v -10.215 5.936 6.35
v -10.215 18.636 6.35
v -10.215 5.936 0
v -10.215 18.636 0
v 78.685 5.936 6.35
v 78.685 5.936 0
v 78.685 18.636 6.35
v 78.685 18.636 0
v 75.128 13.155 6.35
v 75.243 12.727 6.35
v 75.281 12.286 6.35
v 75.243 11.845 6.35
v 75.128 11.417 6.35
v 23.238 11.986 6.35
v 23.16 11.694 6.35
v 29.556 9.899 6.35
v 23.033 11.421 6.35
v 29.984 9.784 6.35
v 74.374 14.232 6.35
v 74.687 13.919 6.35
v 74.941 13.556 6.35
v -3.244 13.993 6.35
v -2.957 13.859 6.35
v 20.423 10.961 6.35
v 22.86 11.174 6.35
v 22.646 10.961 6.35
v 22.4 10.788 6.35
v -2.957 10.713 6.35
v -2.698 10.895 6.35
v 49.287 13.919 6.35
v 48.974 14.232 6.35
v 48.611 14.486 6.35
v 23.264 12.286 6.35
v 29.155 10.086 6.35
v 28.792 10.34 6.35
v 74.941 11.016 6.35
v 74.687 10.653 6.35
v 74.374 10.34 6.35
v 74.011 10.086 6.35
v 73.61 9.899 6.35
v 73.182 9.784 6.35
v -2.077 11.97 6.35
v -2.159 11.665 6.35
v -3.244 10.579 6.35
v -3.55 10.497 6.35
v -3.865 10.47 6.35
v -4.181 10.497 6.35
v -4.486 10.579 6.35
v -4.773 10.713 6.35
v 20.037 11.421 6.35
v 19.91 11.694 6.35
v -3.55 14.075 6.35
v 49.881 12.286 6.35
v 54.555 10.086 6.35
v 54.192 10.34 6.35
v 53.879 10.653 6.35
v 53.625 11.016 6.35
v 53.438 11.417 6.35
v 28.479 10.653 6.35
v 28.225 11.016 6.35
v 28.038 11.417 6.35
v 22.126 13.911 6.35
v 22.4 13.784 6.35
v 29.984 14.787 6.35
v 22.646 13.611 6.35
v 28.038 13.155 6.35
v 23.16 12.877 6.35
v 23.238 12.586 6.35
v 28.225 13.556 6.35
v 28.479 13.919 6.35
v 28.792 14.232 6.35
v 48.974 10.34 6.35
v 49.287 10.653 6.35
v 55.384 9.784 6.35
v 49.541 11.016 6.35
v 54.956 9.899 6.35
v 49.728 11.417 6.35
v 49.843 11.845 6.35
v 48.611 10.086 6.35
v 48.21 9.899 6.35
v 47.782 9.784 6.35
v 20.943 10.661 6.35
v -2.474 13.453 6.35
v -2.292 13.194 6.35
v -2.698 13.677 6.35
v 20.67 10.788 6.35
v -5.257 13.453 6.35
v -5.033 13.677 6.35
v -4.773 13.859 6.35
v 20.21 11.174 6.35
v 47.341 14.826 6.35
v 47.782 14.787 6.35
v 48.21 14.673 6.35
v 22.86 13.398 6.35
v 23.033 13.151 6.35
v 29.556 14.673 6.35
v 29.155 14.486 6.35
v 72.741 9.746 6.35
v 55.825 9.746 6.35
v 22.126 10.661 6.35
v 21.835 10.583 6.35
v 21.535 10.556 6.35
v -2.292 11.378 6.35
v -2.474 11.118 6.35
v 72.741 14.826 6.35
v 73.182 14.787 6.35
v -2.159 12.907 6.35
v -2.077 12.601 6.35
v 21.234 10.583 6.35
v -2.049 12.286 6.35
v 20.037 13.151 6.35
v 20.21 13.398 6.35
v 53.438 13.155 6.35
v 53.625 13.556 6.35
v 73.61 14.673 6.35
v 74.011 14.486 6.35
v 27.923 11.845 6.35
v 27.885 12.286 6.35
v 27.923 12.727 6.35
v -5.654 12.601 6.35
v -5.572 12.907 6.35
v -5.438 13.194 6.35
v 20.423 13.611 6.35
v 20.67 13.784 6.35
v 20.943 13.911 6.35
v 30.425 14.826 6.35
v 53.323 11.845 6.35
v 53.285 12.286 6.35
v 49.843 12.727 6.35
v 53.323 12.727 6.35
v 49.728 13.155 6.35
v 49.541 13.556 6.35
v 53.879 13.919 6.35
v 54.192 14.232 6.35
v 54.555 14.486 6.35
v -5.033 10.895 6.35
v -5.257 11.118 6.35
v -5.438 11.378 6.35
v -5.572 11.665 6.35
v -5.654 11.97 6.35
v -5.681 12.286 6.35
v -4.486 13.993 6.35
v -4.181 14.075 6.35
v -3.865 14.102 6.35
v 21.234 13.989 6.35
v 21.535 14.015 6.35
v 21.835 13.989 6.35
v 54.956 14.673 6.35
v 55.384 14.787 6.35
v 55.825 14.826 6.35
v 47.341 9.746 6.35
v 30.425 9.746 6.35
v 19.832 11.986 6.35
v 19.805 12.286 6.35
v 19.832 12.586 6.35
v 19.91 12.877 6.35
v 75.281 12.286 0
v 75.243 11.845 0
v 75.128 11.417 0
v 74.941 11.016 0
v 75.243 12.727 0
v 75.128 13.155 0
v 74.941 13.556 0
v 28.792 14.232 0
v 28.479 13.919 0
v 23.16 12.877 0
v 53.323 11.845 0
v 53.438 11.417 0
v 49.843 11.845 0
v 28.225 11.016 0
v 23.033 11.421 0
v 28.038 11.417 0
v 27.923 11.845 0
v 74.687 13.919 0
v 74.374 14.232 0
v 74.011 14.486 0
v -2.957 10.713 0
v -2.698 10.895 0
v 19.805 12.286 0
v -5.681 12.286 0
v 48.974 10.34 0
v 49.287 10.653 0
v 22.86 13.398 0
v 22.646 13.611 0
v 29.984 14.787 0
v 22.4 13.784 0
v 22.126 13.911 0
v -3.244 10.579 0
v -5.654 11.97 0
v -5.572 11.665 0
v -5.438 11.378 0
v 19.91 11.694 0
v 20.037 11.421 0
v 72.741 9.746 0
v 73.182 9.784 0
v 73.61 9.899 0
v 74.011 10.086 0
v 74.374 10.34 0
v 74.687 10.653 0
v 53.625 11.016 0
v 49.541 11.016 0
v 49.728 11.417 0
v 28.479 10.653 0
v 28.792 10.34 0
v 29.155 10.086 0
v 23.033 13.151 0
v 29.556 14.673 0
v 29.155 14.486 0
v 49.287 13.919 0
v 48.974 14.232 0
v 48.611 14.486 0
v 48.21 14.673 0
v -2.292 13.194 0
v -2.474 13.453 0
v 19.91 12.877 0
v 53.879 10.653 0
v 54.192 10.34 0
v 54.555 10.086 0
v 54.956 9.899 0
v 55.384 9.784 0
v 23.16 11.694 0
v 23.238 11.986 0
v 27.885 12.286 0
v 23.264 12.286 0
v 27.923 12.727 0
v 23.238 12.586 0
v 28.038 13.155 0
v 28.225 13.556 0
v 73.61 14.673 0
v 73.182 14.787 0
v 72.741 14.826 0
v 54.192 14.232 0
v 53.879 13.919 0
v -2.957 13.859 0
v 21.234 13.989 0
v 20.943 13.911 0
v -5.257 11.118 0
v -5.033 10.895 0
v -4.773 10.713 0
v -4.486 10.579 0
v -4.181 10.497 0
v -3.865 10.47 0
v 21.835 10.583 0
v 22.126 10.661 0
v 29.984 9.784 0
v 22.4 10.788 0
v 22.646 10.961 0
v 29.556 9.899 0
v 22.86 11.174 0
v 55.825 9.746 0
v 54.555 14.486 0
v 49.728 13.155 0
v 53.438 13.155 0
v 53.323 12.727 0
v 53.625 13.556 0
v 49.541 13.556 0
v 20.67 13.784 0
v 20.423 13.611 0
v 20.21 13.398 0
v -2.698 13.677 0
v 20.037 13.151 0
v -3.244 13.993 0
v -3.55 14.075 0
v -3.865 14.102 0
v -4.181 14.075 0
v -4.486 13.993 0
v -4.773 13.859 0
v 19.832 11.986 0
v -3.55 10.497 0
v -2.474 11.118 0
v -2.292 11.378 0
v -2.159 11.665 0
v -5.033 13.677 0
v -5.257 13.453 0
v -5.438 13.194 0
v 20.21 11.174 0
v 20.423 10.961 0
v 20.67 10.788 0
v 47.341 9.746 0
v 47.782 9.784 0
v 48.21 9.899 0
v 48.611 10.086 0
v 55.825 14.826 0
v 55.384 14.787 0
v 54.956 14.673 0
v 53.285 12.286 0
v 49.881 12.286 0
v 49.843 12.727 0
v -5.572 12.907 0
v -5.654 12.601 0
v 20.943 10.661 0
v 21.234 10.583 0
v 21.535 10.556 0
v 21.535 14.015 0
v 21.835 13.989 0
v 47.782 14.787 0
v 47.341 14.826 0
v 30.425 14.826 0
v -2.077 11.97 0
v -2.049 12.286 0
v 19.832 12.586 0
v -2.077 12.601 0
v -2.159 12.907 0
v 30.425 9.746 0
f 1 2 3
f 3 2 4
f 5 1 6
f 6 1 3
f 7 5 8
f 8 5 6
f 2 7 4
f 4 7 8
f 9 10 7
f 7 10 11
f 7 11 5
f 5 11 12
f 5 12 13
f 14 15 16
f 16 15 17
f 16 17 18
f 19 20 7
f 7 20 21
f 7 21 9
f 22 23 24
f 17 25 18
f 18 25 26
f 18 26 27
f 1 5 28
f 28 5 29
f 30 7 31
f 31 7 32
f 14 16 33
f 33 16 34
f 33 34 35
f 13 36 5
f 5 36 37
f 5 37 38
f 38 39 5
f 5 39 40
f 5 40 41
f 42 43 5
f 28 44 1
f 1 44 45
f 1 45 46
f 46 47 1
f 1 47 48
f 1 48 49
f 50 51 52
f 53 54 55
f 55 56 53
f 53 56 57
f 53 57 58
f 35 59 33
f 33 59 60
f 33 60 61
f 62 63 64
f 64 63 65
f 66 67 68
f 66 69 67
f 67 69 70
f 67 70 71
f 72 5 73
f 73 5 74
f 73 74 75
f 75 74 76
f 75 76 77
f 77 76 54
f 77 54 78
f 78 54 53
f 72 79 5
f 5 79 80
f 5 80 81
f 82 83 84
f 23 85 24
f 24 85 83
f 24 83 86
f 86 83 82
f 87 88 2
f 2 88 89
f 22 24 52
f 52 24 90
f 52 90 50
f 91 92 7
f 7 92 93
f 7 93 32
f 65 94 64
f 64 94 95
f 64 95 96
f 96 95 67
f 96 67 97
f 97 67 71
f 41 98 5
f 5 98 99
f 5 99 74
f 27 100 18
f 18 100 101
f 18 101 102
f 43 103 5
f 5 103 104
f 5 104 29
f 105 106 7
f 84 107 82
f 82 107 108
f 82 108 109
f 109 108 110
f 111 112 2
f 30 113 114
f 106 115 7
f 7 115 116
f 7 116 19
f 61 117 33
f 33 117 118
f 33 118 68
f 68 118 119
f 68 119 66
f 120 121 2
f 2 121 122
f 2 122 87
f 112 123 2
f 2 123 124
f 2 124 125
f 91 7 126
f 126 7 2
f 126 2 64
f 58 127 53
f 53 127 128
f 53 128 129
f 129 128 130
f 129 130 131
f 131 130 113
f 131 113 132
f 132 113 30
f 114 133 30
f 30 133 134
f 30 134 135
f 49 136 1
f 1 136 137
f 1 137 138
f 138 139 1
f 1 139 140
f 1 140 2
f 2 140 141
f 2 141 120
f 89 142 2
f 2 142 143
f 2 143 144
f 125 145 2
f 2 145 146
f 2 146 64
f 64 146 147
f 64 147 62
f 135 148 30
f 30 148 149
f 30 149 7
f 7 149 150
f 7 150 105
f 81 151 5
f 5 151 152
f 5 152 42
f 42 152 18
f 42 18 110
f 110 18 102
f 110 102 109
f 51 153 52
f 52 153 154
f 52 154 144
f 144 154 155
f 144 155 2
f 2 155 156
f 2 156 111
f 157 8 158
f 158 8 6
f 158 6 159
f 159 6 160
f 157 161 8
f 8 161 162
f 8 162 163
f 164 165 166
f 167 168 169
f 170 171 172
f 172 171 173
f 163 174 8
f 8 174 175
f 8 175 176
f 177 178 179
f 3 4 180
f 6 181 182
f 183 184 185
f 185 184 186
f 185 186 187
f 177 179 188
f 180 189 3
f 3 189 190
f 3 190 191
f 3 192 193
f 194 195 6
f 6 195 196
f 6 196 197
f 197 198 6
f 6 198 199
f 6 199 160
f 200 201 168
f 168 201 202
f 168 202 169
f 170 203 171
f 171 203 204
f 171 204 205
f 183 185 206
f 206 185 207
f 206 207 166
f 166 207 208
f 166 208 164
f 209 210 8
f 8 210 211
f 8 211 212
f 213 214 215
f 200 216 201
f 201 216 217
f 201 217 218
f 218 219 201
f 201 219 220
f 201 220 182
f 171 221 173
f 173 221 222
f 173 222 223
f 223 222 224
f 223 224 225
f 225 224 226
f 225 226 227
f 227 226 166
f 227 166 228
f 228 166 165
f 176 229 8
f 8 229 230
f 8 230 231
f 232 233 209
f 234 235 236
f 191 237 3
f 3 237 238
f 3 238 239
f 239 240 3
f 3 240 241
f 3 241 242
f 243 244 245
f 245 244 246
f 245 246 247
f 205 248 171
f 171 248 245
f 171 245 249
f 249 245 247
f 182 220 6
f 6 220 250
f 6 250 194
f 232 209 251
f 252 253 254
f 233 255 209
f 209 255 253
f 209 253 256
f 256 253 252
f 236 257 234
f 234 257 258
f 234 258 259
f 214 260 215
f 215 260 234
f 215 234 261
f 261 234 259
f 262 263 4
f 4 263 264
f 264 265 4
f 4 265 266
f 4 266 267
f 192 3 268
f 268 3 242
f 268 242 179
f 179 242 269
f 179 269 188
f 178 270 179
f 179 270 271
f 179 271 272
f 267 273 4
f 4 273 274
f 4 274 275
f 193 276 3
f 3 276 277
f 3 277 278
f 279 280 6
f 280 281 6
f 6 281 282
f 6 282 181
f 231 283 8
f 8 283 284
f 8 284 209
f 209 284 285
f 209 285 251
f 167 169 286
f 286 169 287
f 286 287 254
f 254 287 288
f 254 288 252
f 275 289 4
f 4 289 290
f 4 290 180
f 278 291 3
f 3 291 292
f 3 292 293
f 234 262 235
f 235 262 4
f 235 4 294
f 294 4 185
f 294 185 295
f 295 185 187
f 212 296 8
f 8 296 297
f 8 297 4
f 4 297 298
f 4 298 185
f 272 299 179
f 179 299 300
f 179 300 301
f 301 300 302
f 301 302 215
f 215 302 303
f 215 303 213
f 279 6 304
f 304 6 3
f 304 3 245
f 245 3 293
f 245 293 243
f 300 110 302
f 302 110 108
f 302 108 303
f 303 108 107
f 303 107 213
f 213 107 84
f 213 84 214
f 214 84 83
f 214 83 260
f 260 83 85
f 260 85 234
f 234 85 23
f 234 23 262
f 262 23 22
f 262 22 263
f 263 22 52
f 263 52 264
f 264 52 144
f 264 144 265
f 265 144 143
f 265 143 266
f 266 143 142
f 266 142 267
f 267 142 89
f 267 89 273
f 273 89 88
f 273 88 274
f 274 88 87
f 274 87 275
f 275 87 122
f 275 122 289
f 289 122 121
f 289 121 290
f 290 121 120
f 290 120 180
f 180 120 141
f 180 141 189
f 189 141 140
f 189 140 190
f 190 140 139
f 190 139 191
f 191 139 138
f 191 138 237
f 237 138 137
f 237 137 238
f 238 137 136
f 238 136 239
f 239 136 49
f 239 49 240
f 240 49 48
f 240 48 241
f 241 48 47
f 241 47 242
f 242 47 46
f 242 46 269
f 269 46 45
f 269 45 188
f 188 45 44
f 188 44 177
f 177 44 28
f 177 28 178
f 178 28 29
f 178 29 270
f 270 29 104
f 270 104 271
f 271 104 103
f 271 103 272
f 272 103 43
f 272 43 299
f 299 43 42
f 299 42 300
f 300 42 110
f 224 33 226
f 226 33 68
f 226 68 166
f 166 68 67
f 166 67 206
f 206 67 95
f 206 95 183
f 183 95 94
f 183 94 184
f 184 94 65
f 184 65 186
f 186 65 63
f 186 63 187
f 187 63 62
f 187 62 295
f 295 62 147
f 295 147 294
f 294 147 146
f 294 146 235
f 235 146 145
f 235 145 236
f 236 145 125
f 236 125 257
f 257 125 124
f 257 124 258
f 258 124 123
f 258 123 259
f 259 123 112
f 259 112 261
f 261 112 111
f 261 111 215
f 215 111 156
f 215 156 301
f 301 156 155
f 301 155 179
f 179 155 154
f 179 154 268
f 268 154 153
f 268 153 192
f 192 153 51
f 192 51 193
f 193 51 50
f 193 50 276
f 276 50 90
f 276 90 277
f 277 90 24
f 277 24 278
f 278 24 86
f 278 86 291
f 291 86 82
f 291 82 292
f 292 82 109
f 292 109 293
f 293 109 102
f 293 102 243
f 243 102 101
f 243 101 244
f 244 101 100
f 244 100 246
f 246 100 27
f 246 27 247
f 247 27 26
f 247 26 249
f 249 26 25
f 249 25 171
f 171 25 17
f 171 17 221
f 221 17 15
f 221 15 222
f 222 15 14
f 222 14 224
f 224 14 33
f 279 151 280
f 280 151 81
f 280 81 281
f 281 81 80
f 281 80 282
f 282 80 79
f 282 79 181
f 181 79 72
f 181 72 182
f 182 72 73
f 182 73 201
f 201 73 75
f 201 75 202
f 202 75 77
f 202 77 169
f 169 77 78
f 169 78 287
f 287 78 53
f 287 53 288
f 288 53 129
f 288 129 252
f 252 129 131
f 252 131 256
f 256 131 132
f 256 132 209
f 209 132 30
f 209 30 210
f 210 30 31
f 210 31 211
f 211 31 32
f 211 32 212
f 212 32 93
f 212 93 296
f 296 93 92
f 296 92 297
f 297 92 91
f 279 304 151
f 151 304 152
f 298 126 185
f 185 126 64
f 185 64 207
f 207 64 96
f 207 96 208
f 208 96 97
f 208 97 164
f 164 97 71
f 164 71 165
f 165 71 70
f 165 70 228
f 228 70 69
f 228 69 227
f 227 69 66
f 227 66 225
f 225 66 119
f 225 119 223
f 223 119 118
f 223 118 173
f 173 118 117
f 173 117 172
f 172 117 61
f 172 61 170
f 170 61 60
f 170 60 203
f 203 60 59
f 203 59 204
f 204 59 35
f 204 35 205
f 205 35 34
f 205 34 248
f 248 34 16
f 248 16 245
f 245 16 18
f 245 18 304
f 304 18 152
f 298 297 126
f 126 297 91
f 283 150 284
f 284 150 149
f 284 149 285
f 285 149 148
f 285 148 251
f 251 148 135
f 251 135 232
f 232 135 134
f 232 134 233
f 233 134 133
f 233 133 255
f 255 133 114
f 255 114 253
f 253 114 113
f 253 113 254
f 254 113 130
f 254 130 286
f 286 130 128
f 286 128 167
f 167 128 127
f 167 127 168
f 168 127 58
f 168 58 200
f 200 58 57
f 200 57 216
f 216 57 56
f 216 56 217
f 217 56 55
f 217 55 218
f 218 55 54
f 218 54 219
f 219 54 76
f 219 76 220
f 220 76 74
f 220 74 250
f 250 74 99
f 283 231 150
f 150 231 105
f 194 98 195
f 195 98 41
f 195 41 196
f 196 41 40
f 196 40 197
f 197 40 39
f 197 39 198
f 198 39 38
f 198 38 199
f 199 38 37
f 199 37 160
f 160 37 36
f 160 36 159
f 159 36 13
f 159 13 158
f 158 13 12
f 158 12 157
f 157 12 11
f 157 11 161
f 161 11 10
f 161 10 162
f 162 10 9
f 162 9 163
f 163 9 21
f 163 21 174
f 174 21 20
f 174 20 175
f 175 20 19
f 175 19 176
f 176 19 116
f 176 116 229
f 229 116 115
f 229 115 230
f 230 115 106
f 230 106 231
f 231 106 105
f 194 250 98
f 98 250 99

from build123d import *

# Parameters (mm, degrees)
SKETCH1_W           = 88.9
SKETCH1_H           = 12.7
BOSS_EXTRUDE1_DEPTH = 6.35
SKETCH3_R           = 1.729482421
SKETCH3_R_2         = 1.816224302
CUT_EXTRUDE1_DEPTH  = 6.35


with BuildPart() as part:
    # Sketch1 → Boss-Extrude1 (new body)
    with BuildSketch(Plane.XY):
        with Locations((34.234782609, 12.285869565)):
            Rectangle(SKETCH1_W, SKETCH1_H)
    extrude(amount=BOSS_EXTRUDE1_DEPTH)

    # Sketch3 → Cut-Extrude1 (cut)
    with BuildSketch(Plane.XY.offset(6.35)):
        with Locations((21.534782609, 12.285869565)):
            Circle(SKETCH3_R)
        with Locations((-3.865217391, 12.285869565)):
            Circle(SKETCH3_R_2)
        with BuildLine():
            Line((55.824782609, 14.825869565), (72.741182609, 14.825869565))
            ThreePointArc((72.741182609, 14.825869565), (75.281182609, 12.285869565), (72.741182609, 9.745869565))
            Line((72.741182609, 9.745869565), (55.824782609, 9.745869565))
            ThreePointArc((55.824782609, 9.745869565), (53.284782609, 12.285869565), (55.824782609, 14.825869565))
        make_face()
        with BuildLine():
            Line((47.341182609, 9.745869565), (30.424782609, 9.745869565))
            ThreePointArc((30.424782609, 9.745869565), (27.884782609, 12.285869565), (30.424782609, 14.825869565))
            Line((30.424782609, 14.825869565), (47.341182609, 14.825869565))
            ThreePointArc((47.341182609, 14.825869565), (49.881182609, 12.285869565), (47.341182609, 9.745869565))
        make_face()
    extrude(amount=-CUT_EXTRUDE1_DEPTH, mode=Mode.SUBTRACT)


solid = part.part
